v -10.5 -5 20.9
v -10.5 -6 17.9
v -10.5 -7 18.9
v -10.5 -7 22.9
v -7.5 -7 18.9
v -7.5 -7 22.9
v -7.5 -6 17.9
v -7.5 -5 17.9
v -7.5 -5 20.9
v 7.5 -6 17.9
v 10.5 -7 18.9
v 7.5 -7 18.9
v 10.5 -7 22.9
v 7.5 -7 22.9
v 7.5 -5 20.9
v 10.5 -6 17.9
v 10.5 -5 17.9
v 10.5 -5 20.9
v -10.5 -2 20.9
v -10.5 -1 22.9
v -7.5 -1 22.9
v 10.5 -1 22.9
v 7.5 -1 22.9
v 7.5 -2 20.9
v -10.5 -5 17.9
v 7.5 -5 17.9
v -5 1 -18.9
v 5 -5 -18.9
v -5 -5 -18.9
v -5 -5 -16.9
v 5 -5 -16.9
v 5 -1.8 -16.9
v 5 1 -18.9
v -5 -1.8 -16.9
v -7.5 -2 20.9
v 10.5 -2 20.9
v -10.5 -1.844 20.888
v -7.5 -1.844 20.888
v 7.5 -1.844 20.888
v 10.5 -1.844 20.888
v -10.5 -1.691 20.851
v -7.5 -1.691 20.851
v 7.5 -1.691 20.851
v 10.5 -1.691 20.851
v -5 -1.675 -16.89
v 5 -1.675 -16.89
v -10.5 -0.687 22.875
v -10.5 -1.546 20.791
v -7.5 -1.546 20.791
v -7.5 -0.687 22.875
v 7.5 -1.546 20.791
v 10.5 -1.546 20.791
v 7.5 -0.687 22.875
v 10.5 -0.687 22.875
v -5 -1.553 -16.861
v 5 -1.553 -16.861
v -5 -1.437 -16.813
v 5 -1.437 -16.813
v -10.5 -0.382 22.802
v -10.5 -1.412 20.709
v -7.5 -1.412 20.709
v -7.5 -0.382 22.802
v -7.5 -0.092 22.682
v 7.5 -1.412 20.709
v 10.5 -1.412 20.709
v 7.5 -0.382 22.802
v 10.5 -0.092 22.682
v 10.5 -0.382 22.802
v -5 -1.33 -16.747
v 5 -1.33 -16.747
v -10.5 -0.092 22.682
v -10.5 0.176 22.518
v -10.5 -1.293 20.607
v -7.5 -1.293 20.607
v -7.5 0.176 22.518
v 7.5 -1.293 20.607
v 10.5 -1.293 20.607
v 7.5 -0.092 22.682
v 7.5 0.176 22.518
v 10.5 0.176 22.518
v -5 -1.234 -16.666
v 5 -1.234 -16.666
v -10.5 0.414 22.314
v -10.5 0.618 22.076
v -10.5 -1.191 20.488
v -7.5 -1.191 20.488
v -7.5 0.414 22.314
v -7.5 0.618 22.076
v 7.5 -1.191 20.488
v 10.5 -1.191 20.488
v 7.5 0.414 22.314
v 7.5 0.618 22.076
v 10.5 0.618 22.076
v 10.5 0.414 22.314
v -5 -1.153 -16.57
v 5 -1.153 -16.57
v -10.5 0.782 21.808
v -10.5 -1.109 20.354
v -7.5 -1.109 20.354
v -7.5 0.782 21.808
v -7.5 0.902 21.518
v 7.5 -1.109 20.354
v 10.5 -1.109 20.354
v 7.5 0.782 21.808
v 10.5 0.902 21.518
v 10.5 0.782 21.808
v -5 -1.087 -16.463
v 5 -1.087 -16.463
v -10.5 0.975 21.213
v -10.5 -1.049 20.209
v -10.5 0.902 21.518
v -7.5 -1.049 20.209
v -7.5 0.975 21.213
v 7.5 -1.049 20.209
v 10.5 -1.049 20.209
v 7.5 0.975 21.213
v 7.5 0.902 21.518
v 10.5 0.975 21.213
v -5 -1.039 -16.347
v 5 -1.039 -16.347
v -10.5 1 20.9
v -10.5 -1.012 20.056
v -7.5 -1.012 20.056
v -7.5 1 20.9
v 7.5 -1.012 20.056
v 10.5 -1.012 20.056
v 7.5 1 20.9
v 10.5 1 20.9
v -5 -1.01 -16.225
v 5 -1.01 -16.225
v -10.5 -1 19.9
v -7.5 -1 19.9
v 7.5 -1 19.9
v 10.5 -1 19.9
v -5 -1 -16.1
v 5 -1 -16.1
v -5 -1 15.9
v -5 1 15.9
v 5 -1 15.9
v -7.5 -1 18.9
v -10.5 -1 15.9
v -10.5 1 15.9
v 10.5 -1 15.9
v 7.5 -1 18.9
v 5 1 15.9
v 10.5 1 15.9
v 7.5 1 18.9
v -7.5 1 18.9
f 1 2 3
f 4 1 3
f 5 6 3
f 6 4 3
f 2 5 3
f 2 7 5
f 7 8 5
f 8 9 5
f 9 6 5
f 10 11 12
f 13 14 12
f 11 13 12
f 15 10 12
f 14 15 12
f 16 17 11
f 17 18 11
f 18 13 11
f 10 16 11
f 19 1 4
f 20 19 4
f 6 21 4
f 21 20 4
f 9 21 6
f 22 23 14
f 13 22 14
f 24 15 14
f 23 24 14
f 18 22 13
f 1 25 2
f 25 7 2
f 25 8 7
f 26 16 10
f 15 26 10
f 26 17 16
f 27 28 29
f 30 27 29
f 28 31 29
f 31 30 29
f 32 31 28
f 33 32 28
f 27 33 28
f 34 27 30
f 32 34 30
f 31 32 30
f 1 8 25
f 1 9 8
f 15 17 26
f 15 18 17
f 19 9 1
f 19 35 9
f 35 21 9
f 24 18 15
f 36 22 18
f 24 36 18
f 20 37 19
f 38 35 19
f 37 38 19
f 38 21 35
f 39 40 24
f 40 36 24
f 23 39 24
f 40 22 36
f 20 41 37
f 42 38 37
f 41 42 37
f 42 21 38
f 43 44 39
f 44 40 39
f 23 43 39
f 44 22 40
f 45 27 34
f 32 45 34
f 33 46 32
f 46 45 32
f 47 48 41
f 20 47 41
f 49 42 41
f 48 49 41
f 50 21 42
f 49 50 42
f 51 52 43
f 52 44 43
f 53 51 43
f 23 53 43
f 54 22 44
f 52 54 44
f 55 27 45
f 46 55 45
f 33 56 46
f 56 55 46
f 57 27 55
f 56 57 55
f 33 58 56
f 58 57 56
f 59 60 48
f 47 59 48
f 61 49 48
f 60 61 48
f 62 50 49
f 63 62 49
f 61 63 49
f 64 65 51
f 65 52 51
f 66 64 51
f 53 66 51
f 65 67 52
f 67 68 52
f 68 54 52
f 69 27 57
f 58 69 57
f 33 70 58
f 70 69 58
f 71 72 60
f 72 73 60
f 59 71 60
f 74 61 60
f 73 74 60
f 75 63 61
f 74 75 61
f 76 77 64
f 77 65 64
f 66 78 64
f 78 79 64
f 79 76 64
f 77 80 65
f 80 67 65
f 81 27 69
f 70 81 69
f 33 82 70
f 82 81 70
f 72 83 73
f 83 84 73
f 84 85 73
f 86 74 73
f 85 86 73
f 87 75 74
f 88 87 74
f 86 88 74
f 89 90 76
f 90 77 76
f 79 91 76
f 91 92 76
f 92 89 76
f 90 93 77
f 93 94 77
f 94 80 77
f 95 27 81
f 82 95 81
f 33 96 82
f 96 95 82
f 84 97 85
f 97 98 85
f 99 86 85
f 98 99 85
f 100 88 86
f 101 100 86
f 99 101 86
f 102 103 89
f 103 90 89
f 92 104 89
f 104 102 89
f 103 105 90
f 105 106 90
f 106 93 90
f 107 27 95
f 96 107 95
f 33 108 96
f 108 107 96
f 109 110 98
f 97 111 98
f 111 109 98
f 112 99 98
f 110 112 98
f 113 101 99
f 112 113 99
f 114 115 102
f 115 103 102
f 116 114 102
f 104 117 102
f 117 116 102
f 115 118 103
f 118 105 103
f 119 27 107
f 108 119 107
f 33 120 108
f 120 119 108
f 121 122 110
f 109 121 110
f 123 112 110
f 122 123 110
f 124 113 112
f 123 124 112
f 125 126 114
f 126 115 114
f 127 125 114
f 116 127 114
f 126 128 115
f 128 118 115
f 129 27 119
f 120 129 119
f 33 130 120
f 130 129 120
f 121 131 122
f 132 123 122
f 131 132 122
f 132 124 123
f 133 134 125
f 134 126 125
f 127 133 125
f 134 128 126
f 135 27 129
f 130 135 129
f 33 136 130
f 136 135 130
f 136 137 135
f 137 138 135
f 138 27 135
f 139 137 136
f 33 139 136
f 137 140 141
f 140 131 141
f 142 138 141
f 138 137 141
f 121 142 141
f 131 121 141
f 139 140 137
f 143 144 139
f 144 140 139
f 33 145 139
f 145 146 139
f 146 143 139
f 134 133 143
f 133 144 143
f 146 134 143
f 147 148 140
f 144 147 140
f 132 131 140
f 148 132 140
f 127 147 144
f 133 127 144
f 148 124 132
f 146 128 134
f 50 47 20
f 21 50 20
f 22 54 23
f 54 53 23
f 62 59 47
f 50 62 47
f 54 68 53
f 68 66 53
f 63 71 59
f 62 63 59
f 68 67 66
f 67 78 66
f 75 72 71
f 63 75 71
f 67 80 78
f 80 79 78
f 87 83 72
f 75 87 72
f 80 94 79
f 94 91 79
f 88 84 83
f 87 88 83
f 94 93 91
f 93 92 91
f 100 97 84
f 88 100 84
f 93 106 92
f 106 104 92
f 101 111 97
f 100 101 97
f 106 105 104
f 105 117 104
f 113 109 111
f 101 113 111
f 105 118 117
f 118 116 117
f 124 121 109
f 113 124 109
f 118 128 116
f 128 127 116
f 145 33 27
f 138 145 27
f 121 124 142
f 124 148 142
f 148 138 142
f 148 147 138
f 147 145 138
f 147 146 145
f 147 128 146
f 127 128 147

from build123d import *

# Parameters (mm, degrees)
SKETCH1_W           = 10
SKETCH1_H           = 37.8
SKETCH1_W_2         = 5.5
SKETCH1_H_2         = 3
BOSS_EXTRUDE1_DEPTH = 1
SKETCH2_W           = 10
SKETCH2_H           = 2
BOSS_EXTRUDE2_DEPTH = 4
BOSS_EXTRUDE3_START = -10.5
BOSS_EXTRUDE3_DEPTH = 3
BOSS_EXTRUDE4_START = 7.5
BOSS_EXTRUDE4_DEPTH = 3
FILLET1_R           = 0.8


with BuildPart() as part:
    # Sketch1 → Boss-Extrude1 (new, symmetric)
    with BuildSketch(Plane(origin=(0, 0, 0), x_dir=(1, 0, 0), z_dir=(0, 1, 0))):
        Rectangle(SKETCH1_W, SKETCH1_H)
        with Locations((-7.75, -17.4)):
            Rectangle(SKETCH1_W_2, SKETCH1_H_2)
        with Locations((7.75, -17.4)):
            Rectangle(SKETCH1_W_2, SKETCH1_H_2)
    extrude(amount=BOSS_EXTRUDE1_DEPTH, both=True)

    # Sketch2 → Boss-Extrude2 (add)
    with BuildSketch(Plane.XZ.offset(1)):
        with Locations((0, -17.9)):
            Rectangle(SKETCH2_W, SKETCH2_H)
    extrude(amount=BOSS_EXTRUDE2_DEPTH)

    # Sketch3 → Boss-Extrude3 (add)
    with BuildSketch(Plane(origin=(0, 0, 0), x_dir=(0, 0, -1), z_dir=(1, 0, 0)).offset(BOSS_EXTRUDE3_START)):
        with BuildLine():
            Line((-18.9, -7), (-22.9, -7))
            Line((-22.9, -7), (-22.9, -1))
            ThreePointArc((-22.9, -1), (-22.314213562, 0.414213562), (-20.9, 1))
            Line((-20.9, 1), (-18.9, 1))
            Line((-18.9, 1), (-18.9, -1))
            Line((-18.9, -1), (-19.9, -1))
            ThreePointArc((-19.9, -1), (-20.607106781, -1.292893219), (-20.9, -2))
            Line((-20.9, -2), (-20.9, -5))
            Line((-20.9, -5), (-17.9, -5))
            Line((-17.9, -5), (-17.9, -6))
            Line((-17.9, -6), (-18.9, -7))
        make_face()
    extrude(amount=BOSS_EXTRUDE3_DEPTH)

    # Sketch3<3> → Boss-Extrude4 (add)
    with BuildSketch(Plane(origin=(0, 0, 0), x_dir=(0, 0, -1), z_dir=(1, 0, 0)).offset(BOSS_EXTRUDE4_START)):
        with BuildLine():
            Line((-18.9, -7), (-22.9, -7))
            Line((-22.9, -7), (-22.9, -1))
            ThreePointArc((-22.9, -1), (-22.314213562, 0.414213562), (-20.9, 1))
            Line((-20.9, 1), (-18.9, 1))
            Line((-18.9, 1), (-18.9, -1))
            Line((-18.9, -1), (-19.9, -1))
            ThreePointArc((-19.9, -1), (-20.607106781, -1.292893219), (-20.9, -2))
            Line((-20.9, -2), (-20.9, -5))
            Line((-20.9, -5), (-17.9, -5))
            Line((-17.9, -5), (-17.9, -6))
            Line((-17.9, -6), (-18.9, -7))
        make_face()
    extrude(amount=BOSS_EXTRUDE4_DEPTH)

    # Fillet1
    fillet1_edges = [part.edges().sort_by_distance(p)[0] for p in [
        (0, -1, -16.9),
    ]]
    fillet(fillet1_edges, radius=FILLET1_R)


solid = part.part
